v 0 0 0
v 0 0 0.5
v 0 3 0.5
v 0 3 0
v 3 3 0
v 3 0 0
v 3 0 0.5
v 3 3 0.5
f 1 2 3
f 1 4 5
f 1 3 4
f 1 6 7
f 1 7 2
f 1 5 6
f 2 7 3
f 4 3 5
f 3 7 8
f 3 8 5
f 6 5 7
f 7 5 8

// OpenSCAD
/* Warning, this is a very basic generator with a lot of approximation 
input data : [UQFN, JPX, 3x3x0.5mm, 20, , A, C04-00256A]
generated by com.zoubworld.electronics.cad.model3d.Basic
Date : Sun Feb 15 10:50:48 CET 2026
*/

//body
color("black")
translate([0,0,0])
cube([3.0,3.0,0.5], center=false);
